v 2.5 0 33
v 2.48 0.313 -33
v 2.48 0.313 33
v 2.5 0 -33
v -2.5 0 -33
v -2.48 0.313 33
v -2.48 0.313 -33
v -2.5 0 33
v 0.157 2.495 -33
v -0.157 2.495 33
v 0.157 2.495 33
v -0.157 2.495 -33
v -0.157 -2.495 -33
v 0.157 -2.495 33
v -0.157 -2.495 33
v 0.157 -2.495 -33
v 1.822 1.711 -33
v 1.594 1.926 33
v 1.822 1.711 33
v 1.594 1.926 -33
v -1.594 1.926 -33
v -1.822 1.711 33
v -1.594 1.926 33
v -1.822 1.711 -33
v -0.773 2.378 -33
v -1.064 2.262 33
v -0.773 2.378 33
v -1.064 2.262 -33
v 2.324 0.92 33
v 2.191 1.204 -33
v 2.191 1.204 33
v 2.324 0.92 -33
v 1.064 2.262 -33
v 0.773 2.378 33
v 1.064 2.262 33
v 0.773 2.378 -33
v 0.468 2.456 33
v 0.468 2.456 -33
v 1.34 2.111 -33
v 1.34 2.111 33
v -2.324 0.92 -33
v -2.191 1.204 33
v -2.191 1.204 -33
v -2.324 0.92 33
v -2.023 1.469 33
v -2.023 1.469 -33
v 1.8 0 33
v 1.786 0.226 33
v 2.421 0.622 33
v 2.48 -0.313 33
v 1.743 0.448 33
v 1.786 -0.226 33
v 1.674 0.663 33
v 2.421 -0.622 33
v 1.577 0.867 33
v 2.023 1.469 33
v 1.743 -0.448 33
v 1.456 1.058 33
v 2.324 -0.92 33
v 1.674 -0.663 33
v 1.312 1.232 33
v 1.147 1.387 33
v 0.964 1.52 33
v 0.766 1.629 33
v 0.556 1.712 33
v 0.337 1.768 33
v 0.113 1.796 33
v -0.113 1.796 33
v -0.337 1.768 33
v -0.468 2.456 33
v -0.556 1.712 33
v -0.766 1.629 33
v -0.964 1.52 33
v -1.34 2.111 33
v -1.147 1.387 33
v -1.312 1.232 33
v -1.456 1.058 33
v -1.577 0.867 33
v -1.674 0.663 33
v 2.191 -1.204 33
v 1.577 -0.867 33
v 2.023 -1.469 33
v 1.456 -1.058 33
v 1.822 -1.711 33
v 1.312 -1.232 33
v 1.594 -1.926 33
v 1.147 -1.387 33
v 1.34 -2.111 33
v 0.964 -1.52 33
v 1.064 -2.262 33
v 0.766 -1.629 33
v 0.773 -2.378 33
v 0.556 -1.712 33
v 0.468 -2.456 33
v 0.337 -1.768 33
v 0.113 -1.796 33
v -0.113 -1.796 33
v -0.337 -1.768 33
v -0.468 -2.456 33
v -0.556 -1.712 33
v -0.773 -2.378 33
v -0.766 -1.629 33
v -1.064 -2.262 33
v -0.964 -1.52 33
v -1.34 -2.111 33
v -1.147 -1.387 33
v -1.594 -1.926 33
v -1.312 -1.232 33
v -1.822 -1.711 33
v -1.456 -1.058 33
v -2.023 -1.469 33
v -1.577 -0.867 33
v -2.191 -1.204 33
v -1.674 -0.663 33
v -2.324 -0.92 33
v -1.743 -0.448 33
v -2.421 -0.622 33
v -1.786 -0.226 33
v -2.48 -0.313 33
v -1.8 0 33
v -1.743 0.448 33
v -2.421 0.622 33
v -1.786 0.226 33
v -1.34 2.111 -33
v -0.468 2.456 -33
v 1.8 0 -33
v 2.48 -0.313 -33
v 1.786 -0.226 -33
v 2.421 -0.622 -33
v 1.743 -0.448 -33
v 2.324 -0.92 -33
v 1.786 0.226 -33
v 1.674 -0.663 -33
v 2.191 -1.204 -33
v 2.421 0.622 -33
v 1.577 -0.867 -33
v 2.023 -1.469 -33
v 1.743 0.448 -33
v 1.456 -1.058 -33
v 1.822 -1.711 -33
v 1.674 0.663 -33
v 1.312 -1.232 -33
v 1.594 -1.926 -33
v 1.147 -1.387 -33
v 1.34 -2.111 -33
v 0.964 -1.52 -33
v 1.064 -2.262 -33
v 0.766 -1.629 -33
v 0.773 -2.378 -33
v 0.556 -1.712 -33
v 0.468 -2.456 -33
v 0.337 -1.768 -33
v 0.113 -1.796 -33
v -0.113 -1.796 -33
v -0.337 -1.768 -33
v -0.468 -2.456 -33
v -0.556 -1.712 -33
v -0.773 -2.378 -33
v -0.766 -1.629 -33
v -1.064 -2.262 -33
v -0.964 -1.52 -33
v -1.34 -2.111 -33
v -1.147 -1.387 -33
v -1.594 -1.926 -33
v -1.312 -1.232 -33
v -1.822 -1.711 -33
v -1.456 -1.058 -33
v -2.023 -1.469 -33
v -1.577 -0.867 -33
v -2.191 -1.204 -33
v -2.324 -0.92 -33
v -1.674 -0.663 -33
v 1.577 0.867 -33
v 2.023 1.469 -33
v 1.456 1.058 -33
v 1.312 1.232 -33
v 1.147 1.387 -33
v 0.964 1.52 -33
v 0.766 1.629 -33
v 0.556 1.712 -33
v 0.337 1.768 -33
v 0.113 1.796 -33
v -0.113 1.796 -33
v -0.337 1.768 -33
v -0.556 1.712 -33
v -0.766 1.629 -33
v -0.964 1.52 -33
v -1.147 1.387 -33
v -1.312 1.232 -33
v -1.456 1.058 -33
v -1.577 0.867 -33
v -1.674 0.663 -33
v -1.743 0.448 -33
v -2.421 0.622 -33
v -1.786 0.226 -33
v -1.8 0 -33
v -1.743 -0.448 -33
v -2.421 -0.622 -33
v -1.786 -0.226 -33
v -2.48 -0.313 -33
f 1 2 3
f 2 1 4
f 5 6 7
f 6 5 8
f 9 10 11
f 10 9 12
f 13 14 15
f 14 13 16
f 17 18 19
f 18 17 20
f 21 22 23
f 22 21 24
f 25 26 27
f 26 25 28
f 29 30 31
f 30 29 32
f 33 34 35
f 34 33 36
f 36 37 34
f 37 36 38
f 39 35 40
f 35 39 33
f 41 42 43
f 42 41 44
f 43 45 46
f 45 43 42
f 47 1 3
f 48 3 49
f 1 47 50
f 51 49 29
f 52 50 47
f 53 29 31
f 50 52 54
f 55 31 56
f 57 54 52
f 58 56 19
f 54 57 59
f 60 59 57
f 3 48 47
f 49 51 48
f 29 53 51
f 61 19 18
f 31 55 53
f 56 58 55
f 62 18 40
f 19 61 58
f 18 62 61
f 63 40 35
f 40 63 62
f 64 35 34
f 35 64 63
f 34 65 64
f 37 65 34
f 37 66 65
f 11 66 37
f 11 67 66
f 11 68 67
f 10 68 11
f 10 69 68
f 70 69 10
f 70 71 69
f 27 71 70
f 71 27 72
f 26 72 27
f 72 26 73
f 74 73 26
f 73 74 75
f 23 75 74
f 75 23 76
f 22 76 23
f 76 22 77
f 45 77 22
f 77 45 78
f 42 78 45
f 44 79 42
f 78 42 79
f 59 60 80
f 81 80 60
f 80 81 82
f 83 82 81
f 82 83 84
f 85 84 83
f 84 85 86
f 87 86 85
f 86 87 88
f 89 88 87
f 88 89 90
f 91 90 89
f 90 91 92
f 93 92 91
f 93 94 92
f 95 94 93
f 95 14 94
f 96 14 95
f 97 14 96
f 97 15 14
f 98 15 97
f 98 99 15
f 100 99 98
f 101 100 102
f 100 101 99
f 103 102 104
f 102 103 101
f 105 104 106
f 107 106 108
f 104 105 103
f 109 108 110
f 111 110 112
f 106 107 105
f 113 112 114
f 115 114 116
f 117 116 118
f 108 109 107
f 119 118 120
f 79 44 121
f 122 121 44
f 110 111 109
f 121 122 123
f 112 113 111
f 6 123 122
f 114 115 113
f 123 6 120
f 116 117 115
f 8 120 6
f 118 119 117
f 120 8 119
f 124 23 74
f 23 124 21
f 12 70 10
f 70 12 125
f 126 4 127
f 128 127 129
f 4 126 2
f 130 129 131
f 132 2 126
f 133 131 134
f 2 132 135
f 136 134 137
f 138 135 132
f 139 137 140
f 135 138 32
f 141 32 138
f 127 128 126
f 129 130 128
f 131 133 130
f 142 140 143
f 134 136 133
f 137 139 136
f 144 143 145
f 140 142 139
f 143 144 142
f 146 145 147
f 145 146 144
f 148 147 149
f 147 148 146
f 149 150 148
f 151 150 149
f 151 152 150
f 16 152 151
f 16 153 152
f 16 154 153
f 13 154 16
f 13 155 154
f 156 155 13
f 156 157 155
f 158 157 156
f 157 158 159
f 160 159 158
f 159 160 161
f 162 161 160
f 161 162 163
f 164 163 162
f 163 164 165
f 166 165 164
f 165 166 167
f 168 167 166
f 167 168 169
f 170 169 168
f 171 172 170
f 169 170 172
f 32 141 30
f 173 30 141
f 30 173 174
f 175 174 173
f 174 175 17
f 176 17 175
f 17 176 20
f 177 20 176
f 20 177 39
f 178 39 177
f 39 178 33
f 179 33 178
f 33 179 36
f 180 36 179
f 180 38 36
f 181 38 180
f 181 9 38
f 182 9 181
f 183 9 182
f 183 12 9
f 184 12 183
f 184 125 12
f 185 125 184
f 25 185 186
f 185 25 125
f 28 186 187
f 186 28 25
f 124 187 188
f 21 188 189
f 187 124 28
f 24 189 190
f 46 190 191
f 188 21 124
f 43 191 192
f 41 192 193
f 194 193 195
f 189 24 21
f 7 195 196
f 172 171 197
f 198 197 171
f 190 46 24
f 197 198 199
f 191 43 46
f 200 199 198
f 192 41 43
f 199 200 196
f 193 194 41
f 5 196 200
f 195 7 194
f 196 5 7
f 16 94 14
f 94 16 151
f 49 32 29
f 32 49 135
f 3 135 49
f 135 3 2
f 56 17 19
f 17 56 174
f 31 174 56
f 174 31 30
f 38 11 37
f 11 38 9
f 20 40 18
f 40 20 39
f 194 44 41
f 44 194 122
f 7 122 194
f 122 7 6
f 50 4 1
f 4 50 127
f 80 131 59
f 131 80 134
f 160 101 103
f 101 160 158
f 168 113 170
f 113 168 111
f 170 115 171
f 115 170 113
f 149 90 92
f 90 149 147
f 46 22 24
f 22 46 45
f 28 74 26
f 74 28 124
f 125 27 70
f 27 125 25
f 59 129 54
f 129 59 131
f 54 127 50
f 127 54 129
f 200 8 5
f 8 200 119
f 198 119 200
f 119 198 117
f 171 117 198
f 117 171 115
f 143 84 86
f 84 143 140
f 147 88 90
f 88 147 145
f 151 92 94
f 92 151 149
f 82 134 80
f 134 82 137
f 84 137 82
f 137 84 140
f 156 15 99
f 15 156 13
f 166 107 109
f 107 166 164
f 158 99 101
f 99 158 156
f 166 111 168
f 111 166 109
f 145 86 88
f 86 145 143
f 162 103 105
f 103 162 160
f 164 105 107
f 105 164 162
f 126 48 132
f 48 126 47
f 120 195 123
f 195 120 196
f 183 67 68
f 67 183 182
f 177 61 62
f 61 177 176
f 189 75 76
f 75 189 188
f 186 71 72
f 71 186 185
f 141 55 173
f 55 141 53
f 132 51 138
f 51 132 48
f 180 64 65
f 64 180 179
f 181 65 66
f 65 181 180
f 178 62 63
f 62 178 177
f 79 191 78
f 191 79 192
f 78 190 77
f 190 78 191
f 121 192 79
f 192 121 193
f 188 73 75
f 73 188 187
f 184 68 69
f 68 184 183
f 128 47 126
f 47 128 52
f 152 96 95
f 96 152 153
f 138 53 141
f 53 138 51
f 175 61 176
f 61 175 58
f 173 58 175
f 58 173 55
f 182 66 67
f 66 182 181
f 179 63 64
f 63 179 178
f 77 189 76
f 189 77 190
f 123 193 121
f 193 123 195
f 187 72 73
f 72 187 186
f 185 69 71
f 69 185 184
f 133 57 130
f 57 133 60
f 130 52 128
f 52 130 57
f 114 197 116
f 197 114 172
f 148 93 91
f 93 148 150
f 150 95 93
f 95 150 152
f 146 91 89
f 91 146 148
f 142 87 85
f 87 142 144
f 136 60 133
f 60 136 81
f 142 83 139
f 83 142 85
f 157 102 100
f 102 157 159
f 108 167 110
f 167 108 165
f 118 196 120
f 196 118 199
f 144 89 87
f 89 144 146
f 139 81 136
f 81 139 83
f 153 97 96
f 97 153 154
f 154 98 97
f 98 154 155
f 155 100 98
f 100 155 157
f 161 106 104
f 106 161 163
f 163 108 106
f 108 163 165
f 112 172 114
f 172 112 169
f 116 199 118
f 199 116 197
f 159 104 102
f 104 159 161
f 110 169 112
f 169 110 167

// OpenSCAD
$fn = 50;


difference() {
	union() {
		translate(v = [0, 0, -33.0000000000]) {
			cylinder(h = 66, r = 2.5000000000);
		}
	}
	union() {
		translate(v = [0, 0, -100.0000000000]) {
			cylinder(h = 200, r = 1.8000000000);
		}
	}
}
